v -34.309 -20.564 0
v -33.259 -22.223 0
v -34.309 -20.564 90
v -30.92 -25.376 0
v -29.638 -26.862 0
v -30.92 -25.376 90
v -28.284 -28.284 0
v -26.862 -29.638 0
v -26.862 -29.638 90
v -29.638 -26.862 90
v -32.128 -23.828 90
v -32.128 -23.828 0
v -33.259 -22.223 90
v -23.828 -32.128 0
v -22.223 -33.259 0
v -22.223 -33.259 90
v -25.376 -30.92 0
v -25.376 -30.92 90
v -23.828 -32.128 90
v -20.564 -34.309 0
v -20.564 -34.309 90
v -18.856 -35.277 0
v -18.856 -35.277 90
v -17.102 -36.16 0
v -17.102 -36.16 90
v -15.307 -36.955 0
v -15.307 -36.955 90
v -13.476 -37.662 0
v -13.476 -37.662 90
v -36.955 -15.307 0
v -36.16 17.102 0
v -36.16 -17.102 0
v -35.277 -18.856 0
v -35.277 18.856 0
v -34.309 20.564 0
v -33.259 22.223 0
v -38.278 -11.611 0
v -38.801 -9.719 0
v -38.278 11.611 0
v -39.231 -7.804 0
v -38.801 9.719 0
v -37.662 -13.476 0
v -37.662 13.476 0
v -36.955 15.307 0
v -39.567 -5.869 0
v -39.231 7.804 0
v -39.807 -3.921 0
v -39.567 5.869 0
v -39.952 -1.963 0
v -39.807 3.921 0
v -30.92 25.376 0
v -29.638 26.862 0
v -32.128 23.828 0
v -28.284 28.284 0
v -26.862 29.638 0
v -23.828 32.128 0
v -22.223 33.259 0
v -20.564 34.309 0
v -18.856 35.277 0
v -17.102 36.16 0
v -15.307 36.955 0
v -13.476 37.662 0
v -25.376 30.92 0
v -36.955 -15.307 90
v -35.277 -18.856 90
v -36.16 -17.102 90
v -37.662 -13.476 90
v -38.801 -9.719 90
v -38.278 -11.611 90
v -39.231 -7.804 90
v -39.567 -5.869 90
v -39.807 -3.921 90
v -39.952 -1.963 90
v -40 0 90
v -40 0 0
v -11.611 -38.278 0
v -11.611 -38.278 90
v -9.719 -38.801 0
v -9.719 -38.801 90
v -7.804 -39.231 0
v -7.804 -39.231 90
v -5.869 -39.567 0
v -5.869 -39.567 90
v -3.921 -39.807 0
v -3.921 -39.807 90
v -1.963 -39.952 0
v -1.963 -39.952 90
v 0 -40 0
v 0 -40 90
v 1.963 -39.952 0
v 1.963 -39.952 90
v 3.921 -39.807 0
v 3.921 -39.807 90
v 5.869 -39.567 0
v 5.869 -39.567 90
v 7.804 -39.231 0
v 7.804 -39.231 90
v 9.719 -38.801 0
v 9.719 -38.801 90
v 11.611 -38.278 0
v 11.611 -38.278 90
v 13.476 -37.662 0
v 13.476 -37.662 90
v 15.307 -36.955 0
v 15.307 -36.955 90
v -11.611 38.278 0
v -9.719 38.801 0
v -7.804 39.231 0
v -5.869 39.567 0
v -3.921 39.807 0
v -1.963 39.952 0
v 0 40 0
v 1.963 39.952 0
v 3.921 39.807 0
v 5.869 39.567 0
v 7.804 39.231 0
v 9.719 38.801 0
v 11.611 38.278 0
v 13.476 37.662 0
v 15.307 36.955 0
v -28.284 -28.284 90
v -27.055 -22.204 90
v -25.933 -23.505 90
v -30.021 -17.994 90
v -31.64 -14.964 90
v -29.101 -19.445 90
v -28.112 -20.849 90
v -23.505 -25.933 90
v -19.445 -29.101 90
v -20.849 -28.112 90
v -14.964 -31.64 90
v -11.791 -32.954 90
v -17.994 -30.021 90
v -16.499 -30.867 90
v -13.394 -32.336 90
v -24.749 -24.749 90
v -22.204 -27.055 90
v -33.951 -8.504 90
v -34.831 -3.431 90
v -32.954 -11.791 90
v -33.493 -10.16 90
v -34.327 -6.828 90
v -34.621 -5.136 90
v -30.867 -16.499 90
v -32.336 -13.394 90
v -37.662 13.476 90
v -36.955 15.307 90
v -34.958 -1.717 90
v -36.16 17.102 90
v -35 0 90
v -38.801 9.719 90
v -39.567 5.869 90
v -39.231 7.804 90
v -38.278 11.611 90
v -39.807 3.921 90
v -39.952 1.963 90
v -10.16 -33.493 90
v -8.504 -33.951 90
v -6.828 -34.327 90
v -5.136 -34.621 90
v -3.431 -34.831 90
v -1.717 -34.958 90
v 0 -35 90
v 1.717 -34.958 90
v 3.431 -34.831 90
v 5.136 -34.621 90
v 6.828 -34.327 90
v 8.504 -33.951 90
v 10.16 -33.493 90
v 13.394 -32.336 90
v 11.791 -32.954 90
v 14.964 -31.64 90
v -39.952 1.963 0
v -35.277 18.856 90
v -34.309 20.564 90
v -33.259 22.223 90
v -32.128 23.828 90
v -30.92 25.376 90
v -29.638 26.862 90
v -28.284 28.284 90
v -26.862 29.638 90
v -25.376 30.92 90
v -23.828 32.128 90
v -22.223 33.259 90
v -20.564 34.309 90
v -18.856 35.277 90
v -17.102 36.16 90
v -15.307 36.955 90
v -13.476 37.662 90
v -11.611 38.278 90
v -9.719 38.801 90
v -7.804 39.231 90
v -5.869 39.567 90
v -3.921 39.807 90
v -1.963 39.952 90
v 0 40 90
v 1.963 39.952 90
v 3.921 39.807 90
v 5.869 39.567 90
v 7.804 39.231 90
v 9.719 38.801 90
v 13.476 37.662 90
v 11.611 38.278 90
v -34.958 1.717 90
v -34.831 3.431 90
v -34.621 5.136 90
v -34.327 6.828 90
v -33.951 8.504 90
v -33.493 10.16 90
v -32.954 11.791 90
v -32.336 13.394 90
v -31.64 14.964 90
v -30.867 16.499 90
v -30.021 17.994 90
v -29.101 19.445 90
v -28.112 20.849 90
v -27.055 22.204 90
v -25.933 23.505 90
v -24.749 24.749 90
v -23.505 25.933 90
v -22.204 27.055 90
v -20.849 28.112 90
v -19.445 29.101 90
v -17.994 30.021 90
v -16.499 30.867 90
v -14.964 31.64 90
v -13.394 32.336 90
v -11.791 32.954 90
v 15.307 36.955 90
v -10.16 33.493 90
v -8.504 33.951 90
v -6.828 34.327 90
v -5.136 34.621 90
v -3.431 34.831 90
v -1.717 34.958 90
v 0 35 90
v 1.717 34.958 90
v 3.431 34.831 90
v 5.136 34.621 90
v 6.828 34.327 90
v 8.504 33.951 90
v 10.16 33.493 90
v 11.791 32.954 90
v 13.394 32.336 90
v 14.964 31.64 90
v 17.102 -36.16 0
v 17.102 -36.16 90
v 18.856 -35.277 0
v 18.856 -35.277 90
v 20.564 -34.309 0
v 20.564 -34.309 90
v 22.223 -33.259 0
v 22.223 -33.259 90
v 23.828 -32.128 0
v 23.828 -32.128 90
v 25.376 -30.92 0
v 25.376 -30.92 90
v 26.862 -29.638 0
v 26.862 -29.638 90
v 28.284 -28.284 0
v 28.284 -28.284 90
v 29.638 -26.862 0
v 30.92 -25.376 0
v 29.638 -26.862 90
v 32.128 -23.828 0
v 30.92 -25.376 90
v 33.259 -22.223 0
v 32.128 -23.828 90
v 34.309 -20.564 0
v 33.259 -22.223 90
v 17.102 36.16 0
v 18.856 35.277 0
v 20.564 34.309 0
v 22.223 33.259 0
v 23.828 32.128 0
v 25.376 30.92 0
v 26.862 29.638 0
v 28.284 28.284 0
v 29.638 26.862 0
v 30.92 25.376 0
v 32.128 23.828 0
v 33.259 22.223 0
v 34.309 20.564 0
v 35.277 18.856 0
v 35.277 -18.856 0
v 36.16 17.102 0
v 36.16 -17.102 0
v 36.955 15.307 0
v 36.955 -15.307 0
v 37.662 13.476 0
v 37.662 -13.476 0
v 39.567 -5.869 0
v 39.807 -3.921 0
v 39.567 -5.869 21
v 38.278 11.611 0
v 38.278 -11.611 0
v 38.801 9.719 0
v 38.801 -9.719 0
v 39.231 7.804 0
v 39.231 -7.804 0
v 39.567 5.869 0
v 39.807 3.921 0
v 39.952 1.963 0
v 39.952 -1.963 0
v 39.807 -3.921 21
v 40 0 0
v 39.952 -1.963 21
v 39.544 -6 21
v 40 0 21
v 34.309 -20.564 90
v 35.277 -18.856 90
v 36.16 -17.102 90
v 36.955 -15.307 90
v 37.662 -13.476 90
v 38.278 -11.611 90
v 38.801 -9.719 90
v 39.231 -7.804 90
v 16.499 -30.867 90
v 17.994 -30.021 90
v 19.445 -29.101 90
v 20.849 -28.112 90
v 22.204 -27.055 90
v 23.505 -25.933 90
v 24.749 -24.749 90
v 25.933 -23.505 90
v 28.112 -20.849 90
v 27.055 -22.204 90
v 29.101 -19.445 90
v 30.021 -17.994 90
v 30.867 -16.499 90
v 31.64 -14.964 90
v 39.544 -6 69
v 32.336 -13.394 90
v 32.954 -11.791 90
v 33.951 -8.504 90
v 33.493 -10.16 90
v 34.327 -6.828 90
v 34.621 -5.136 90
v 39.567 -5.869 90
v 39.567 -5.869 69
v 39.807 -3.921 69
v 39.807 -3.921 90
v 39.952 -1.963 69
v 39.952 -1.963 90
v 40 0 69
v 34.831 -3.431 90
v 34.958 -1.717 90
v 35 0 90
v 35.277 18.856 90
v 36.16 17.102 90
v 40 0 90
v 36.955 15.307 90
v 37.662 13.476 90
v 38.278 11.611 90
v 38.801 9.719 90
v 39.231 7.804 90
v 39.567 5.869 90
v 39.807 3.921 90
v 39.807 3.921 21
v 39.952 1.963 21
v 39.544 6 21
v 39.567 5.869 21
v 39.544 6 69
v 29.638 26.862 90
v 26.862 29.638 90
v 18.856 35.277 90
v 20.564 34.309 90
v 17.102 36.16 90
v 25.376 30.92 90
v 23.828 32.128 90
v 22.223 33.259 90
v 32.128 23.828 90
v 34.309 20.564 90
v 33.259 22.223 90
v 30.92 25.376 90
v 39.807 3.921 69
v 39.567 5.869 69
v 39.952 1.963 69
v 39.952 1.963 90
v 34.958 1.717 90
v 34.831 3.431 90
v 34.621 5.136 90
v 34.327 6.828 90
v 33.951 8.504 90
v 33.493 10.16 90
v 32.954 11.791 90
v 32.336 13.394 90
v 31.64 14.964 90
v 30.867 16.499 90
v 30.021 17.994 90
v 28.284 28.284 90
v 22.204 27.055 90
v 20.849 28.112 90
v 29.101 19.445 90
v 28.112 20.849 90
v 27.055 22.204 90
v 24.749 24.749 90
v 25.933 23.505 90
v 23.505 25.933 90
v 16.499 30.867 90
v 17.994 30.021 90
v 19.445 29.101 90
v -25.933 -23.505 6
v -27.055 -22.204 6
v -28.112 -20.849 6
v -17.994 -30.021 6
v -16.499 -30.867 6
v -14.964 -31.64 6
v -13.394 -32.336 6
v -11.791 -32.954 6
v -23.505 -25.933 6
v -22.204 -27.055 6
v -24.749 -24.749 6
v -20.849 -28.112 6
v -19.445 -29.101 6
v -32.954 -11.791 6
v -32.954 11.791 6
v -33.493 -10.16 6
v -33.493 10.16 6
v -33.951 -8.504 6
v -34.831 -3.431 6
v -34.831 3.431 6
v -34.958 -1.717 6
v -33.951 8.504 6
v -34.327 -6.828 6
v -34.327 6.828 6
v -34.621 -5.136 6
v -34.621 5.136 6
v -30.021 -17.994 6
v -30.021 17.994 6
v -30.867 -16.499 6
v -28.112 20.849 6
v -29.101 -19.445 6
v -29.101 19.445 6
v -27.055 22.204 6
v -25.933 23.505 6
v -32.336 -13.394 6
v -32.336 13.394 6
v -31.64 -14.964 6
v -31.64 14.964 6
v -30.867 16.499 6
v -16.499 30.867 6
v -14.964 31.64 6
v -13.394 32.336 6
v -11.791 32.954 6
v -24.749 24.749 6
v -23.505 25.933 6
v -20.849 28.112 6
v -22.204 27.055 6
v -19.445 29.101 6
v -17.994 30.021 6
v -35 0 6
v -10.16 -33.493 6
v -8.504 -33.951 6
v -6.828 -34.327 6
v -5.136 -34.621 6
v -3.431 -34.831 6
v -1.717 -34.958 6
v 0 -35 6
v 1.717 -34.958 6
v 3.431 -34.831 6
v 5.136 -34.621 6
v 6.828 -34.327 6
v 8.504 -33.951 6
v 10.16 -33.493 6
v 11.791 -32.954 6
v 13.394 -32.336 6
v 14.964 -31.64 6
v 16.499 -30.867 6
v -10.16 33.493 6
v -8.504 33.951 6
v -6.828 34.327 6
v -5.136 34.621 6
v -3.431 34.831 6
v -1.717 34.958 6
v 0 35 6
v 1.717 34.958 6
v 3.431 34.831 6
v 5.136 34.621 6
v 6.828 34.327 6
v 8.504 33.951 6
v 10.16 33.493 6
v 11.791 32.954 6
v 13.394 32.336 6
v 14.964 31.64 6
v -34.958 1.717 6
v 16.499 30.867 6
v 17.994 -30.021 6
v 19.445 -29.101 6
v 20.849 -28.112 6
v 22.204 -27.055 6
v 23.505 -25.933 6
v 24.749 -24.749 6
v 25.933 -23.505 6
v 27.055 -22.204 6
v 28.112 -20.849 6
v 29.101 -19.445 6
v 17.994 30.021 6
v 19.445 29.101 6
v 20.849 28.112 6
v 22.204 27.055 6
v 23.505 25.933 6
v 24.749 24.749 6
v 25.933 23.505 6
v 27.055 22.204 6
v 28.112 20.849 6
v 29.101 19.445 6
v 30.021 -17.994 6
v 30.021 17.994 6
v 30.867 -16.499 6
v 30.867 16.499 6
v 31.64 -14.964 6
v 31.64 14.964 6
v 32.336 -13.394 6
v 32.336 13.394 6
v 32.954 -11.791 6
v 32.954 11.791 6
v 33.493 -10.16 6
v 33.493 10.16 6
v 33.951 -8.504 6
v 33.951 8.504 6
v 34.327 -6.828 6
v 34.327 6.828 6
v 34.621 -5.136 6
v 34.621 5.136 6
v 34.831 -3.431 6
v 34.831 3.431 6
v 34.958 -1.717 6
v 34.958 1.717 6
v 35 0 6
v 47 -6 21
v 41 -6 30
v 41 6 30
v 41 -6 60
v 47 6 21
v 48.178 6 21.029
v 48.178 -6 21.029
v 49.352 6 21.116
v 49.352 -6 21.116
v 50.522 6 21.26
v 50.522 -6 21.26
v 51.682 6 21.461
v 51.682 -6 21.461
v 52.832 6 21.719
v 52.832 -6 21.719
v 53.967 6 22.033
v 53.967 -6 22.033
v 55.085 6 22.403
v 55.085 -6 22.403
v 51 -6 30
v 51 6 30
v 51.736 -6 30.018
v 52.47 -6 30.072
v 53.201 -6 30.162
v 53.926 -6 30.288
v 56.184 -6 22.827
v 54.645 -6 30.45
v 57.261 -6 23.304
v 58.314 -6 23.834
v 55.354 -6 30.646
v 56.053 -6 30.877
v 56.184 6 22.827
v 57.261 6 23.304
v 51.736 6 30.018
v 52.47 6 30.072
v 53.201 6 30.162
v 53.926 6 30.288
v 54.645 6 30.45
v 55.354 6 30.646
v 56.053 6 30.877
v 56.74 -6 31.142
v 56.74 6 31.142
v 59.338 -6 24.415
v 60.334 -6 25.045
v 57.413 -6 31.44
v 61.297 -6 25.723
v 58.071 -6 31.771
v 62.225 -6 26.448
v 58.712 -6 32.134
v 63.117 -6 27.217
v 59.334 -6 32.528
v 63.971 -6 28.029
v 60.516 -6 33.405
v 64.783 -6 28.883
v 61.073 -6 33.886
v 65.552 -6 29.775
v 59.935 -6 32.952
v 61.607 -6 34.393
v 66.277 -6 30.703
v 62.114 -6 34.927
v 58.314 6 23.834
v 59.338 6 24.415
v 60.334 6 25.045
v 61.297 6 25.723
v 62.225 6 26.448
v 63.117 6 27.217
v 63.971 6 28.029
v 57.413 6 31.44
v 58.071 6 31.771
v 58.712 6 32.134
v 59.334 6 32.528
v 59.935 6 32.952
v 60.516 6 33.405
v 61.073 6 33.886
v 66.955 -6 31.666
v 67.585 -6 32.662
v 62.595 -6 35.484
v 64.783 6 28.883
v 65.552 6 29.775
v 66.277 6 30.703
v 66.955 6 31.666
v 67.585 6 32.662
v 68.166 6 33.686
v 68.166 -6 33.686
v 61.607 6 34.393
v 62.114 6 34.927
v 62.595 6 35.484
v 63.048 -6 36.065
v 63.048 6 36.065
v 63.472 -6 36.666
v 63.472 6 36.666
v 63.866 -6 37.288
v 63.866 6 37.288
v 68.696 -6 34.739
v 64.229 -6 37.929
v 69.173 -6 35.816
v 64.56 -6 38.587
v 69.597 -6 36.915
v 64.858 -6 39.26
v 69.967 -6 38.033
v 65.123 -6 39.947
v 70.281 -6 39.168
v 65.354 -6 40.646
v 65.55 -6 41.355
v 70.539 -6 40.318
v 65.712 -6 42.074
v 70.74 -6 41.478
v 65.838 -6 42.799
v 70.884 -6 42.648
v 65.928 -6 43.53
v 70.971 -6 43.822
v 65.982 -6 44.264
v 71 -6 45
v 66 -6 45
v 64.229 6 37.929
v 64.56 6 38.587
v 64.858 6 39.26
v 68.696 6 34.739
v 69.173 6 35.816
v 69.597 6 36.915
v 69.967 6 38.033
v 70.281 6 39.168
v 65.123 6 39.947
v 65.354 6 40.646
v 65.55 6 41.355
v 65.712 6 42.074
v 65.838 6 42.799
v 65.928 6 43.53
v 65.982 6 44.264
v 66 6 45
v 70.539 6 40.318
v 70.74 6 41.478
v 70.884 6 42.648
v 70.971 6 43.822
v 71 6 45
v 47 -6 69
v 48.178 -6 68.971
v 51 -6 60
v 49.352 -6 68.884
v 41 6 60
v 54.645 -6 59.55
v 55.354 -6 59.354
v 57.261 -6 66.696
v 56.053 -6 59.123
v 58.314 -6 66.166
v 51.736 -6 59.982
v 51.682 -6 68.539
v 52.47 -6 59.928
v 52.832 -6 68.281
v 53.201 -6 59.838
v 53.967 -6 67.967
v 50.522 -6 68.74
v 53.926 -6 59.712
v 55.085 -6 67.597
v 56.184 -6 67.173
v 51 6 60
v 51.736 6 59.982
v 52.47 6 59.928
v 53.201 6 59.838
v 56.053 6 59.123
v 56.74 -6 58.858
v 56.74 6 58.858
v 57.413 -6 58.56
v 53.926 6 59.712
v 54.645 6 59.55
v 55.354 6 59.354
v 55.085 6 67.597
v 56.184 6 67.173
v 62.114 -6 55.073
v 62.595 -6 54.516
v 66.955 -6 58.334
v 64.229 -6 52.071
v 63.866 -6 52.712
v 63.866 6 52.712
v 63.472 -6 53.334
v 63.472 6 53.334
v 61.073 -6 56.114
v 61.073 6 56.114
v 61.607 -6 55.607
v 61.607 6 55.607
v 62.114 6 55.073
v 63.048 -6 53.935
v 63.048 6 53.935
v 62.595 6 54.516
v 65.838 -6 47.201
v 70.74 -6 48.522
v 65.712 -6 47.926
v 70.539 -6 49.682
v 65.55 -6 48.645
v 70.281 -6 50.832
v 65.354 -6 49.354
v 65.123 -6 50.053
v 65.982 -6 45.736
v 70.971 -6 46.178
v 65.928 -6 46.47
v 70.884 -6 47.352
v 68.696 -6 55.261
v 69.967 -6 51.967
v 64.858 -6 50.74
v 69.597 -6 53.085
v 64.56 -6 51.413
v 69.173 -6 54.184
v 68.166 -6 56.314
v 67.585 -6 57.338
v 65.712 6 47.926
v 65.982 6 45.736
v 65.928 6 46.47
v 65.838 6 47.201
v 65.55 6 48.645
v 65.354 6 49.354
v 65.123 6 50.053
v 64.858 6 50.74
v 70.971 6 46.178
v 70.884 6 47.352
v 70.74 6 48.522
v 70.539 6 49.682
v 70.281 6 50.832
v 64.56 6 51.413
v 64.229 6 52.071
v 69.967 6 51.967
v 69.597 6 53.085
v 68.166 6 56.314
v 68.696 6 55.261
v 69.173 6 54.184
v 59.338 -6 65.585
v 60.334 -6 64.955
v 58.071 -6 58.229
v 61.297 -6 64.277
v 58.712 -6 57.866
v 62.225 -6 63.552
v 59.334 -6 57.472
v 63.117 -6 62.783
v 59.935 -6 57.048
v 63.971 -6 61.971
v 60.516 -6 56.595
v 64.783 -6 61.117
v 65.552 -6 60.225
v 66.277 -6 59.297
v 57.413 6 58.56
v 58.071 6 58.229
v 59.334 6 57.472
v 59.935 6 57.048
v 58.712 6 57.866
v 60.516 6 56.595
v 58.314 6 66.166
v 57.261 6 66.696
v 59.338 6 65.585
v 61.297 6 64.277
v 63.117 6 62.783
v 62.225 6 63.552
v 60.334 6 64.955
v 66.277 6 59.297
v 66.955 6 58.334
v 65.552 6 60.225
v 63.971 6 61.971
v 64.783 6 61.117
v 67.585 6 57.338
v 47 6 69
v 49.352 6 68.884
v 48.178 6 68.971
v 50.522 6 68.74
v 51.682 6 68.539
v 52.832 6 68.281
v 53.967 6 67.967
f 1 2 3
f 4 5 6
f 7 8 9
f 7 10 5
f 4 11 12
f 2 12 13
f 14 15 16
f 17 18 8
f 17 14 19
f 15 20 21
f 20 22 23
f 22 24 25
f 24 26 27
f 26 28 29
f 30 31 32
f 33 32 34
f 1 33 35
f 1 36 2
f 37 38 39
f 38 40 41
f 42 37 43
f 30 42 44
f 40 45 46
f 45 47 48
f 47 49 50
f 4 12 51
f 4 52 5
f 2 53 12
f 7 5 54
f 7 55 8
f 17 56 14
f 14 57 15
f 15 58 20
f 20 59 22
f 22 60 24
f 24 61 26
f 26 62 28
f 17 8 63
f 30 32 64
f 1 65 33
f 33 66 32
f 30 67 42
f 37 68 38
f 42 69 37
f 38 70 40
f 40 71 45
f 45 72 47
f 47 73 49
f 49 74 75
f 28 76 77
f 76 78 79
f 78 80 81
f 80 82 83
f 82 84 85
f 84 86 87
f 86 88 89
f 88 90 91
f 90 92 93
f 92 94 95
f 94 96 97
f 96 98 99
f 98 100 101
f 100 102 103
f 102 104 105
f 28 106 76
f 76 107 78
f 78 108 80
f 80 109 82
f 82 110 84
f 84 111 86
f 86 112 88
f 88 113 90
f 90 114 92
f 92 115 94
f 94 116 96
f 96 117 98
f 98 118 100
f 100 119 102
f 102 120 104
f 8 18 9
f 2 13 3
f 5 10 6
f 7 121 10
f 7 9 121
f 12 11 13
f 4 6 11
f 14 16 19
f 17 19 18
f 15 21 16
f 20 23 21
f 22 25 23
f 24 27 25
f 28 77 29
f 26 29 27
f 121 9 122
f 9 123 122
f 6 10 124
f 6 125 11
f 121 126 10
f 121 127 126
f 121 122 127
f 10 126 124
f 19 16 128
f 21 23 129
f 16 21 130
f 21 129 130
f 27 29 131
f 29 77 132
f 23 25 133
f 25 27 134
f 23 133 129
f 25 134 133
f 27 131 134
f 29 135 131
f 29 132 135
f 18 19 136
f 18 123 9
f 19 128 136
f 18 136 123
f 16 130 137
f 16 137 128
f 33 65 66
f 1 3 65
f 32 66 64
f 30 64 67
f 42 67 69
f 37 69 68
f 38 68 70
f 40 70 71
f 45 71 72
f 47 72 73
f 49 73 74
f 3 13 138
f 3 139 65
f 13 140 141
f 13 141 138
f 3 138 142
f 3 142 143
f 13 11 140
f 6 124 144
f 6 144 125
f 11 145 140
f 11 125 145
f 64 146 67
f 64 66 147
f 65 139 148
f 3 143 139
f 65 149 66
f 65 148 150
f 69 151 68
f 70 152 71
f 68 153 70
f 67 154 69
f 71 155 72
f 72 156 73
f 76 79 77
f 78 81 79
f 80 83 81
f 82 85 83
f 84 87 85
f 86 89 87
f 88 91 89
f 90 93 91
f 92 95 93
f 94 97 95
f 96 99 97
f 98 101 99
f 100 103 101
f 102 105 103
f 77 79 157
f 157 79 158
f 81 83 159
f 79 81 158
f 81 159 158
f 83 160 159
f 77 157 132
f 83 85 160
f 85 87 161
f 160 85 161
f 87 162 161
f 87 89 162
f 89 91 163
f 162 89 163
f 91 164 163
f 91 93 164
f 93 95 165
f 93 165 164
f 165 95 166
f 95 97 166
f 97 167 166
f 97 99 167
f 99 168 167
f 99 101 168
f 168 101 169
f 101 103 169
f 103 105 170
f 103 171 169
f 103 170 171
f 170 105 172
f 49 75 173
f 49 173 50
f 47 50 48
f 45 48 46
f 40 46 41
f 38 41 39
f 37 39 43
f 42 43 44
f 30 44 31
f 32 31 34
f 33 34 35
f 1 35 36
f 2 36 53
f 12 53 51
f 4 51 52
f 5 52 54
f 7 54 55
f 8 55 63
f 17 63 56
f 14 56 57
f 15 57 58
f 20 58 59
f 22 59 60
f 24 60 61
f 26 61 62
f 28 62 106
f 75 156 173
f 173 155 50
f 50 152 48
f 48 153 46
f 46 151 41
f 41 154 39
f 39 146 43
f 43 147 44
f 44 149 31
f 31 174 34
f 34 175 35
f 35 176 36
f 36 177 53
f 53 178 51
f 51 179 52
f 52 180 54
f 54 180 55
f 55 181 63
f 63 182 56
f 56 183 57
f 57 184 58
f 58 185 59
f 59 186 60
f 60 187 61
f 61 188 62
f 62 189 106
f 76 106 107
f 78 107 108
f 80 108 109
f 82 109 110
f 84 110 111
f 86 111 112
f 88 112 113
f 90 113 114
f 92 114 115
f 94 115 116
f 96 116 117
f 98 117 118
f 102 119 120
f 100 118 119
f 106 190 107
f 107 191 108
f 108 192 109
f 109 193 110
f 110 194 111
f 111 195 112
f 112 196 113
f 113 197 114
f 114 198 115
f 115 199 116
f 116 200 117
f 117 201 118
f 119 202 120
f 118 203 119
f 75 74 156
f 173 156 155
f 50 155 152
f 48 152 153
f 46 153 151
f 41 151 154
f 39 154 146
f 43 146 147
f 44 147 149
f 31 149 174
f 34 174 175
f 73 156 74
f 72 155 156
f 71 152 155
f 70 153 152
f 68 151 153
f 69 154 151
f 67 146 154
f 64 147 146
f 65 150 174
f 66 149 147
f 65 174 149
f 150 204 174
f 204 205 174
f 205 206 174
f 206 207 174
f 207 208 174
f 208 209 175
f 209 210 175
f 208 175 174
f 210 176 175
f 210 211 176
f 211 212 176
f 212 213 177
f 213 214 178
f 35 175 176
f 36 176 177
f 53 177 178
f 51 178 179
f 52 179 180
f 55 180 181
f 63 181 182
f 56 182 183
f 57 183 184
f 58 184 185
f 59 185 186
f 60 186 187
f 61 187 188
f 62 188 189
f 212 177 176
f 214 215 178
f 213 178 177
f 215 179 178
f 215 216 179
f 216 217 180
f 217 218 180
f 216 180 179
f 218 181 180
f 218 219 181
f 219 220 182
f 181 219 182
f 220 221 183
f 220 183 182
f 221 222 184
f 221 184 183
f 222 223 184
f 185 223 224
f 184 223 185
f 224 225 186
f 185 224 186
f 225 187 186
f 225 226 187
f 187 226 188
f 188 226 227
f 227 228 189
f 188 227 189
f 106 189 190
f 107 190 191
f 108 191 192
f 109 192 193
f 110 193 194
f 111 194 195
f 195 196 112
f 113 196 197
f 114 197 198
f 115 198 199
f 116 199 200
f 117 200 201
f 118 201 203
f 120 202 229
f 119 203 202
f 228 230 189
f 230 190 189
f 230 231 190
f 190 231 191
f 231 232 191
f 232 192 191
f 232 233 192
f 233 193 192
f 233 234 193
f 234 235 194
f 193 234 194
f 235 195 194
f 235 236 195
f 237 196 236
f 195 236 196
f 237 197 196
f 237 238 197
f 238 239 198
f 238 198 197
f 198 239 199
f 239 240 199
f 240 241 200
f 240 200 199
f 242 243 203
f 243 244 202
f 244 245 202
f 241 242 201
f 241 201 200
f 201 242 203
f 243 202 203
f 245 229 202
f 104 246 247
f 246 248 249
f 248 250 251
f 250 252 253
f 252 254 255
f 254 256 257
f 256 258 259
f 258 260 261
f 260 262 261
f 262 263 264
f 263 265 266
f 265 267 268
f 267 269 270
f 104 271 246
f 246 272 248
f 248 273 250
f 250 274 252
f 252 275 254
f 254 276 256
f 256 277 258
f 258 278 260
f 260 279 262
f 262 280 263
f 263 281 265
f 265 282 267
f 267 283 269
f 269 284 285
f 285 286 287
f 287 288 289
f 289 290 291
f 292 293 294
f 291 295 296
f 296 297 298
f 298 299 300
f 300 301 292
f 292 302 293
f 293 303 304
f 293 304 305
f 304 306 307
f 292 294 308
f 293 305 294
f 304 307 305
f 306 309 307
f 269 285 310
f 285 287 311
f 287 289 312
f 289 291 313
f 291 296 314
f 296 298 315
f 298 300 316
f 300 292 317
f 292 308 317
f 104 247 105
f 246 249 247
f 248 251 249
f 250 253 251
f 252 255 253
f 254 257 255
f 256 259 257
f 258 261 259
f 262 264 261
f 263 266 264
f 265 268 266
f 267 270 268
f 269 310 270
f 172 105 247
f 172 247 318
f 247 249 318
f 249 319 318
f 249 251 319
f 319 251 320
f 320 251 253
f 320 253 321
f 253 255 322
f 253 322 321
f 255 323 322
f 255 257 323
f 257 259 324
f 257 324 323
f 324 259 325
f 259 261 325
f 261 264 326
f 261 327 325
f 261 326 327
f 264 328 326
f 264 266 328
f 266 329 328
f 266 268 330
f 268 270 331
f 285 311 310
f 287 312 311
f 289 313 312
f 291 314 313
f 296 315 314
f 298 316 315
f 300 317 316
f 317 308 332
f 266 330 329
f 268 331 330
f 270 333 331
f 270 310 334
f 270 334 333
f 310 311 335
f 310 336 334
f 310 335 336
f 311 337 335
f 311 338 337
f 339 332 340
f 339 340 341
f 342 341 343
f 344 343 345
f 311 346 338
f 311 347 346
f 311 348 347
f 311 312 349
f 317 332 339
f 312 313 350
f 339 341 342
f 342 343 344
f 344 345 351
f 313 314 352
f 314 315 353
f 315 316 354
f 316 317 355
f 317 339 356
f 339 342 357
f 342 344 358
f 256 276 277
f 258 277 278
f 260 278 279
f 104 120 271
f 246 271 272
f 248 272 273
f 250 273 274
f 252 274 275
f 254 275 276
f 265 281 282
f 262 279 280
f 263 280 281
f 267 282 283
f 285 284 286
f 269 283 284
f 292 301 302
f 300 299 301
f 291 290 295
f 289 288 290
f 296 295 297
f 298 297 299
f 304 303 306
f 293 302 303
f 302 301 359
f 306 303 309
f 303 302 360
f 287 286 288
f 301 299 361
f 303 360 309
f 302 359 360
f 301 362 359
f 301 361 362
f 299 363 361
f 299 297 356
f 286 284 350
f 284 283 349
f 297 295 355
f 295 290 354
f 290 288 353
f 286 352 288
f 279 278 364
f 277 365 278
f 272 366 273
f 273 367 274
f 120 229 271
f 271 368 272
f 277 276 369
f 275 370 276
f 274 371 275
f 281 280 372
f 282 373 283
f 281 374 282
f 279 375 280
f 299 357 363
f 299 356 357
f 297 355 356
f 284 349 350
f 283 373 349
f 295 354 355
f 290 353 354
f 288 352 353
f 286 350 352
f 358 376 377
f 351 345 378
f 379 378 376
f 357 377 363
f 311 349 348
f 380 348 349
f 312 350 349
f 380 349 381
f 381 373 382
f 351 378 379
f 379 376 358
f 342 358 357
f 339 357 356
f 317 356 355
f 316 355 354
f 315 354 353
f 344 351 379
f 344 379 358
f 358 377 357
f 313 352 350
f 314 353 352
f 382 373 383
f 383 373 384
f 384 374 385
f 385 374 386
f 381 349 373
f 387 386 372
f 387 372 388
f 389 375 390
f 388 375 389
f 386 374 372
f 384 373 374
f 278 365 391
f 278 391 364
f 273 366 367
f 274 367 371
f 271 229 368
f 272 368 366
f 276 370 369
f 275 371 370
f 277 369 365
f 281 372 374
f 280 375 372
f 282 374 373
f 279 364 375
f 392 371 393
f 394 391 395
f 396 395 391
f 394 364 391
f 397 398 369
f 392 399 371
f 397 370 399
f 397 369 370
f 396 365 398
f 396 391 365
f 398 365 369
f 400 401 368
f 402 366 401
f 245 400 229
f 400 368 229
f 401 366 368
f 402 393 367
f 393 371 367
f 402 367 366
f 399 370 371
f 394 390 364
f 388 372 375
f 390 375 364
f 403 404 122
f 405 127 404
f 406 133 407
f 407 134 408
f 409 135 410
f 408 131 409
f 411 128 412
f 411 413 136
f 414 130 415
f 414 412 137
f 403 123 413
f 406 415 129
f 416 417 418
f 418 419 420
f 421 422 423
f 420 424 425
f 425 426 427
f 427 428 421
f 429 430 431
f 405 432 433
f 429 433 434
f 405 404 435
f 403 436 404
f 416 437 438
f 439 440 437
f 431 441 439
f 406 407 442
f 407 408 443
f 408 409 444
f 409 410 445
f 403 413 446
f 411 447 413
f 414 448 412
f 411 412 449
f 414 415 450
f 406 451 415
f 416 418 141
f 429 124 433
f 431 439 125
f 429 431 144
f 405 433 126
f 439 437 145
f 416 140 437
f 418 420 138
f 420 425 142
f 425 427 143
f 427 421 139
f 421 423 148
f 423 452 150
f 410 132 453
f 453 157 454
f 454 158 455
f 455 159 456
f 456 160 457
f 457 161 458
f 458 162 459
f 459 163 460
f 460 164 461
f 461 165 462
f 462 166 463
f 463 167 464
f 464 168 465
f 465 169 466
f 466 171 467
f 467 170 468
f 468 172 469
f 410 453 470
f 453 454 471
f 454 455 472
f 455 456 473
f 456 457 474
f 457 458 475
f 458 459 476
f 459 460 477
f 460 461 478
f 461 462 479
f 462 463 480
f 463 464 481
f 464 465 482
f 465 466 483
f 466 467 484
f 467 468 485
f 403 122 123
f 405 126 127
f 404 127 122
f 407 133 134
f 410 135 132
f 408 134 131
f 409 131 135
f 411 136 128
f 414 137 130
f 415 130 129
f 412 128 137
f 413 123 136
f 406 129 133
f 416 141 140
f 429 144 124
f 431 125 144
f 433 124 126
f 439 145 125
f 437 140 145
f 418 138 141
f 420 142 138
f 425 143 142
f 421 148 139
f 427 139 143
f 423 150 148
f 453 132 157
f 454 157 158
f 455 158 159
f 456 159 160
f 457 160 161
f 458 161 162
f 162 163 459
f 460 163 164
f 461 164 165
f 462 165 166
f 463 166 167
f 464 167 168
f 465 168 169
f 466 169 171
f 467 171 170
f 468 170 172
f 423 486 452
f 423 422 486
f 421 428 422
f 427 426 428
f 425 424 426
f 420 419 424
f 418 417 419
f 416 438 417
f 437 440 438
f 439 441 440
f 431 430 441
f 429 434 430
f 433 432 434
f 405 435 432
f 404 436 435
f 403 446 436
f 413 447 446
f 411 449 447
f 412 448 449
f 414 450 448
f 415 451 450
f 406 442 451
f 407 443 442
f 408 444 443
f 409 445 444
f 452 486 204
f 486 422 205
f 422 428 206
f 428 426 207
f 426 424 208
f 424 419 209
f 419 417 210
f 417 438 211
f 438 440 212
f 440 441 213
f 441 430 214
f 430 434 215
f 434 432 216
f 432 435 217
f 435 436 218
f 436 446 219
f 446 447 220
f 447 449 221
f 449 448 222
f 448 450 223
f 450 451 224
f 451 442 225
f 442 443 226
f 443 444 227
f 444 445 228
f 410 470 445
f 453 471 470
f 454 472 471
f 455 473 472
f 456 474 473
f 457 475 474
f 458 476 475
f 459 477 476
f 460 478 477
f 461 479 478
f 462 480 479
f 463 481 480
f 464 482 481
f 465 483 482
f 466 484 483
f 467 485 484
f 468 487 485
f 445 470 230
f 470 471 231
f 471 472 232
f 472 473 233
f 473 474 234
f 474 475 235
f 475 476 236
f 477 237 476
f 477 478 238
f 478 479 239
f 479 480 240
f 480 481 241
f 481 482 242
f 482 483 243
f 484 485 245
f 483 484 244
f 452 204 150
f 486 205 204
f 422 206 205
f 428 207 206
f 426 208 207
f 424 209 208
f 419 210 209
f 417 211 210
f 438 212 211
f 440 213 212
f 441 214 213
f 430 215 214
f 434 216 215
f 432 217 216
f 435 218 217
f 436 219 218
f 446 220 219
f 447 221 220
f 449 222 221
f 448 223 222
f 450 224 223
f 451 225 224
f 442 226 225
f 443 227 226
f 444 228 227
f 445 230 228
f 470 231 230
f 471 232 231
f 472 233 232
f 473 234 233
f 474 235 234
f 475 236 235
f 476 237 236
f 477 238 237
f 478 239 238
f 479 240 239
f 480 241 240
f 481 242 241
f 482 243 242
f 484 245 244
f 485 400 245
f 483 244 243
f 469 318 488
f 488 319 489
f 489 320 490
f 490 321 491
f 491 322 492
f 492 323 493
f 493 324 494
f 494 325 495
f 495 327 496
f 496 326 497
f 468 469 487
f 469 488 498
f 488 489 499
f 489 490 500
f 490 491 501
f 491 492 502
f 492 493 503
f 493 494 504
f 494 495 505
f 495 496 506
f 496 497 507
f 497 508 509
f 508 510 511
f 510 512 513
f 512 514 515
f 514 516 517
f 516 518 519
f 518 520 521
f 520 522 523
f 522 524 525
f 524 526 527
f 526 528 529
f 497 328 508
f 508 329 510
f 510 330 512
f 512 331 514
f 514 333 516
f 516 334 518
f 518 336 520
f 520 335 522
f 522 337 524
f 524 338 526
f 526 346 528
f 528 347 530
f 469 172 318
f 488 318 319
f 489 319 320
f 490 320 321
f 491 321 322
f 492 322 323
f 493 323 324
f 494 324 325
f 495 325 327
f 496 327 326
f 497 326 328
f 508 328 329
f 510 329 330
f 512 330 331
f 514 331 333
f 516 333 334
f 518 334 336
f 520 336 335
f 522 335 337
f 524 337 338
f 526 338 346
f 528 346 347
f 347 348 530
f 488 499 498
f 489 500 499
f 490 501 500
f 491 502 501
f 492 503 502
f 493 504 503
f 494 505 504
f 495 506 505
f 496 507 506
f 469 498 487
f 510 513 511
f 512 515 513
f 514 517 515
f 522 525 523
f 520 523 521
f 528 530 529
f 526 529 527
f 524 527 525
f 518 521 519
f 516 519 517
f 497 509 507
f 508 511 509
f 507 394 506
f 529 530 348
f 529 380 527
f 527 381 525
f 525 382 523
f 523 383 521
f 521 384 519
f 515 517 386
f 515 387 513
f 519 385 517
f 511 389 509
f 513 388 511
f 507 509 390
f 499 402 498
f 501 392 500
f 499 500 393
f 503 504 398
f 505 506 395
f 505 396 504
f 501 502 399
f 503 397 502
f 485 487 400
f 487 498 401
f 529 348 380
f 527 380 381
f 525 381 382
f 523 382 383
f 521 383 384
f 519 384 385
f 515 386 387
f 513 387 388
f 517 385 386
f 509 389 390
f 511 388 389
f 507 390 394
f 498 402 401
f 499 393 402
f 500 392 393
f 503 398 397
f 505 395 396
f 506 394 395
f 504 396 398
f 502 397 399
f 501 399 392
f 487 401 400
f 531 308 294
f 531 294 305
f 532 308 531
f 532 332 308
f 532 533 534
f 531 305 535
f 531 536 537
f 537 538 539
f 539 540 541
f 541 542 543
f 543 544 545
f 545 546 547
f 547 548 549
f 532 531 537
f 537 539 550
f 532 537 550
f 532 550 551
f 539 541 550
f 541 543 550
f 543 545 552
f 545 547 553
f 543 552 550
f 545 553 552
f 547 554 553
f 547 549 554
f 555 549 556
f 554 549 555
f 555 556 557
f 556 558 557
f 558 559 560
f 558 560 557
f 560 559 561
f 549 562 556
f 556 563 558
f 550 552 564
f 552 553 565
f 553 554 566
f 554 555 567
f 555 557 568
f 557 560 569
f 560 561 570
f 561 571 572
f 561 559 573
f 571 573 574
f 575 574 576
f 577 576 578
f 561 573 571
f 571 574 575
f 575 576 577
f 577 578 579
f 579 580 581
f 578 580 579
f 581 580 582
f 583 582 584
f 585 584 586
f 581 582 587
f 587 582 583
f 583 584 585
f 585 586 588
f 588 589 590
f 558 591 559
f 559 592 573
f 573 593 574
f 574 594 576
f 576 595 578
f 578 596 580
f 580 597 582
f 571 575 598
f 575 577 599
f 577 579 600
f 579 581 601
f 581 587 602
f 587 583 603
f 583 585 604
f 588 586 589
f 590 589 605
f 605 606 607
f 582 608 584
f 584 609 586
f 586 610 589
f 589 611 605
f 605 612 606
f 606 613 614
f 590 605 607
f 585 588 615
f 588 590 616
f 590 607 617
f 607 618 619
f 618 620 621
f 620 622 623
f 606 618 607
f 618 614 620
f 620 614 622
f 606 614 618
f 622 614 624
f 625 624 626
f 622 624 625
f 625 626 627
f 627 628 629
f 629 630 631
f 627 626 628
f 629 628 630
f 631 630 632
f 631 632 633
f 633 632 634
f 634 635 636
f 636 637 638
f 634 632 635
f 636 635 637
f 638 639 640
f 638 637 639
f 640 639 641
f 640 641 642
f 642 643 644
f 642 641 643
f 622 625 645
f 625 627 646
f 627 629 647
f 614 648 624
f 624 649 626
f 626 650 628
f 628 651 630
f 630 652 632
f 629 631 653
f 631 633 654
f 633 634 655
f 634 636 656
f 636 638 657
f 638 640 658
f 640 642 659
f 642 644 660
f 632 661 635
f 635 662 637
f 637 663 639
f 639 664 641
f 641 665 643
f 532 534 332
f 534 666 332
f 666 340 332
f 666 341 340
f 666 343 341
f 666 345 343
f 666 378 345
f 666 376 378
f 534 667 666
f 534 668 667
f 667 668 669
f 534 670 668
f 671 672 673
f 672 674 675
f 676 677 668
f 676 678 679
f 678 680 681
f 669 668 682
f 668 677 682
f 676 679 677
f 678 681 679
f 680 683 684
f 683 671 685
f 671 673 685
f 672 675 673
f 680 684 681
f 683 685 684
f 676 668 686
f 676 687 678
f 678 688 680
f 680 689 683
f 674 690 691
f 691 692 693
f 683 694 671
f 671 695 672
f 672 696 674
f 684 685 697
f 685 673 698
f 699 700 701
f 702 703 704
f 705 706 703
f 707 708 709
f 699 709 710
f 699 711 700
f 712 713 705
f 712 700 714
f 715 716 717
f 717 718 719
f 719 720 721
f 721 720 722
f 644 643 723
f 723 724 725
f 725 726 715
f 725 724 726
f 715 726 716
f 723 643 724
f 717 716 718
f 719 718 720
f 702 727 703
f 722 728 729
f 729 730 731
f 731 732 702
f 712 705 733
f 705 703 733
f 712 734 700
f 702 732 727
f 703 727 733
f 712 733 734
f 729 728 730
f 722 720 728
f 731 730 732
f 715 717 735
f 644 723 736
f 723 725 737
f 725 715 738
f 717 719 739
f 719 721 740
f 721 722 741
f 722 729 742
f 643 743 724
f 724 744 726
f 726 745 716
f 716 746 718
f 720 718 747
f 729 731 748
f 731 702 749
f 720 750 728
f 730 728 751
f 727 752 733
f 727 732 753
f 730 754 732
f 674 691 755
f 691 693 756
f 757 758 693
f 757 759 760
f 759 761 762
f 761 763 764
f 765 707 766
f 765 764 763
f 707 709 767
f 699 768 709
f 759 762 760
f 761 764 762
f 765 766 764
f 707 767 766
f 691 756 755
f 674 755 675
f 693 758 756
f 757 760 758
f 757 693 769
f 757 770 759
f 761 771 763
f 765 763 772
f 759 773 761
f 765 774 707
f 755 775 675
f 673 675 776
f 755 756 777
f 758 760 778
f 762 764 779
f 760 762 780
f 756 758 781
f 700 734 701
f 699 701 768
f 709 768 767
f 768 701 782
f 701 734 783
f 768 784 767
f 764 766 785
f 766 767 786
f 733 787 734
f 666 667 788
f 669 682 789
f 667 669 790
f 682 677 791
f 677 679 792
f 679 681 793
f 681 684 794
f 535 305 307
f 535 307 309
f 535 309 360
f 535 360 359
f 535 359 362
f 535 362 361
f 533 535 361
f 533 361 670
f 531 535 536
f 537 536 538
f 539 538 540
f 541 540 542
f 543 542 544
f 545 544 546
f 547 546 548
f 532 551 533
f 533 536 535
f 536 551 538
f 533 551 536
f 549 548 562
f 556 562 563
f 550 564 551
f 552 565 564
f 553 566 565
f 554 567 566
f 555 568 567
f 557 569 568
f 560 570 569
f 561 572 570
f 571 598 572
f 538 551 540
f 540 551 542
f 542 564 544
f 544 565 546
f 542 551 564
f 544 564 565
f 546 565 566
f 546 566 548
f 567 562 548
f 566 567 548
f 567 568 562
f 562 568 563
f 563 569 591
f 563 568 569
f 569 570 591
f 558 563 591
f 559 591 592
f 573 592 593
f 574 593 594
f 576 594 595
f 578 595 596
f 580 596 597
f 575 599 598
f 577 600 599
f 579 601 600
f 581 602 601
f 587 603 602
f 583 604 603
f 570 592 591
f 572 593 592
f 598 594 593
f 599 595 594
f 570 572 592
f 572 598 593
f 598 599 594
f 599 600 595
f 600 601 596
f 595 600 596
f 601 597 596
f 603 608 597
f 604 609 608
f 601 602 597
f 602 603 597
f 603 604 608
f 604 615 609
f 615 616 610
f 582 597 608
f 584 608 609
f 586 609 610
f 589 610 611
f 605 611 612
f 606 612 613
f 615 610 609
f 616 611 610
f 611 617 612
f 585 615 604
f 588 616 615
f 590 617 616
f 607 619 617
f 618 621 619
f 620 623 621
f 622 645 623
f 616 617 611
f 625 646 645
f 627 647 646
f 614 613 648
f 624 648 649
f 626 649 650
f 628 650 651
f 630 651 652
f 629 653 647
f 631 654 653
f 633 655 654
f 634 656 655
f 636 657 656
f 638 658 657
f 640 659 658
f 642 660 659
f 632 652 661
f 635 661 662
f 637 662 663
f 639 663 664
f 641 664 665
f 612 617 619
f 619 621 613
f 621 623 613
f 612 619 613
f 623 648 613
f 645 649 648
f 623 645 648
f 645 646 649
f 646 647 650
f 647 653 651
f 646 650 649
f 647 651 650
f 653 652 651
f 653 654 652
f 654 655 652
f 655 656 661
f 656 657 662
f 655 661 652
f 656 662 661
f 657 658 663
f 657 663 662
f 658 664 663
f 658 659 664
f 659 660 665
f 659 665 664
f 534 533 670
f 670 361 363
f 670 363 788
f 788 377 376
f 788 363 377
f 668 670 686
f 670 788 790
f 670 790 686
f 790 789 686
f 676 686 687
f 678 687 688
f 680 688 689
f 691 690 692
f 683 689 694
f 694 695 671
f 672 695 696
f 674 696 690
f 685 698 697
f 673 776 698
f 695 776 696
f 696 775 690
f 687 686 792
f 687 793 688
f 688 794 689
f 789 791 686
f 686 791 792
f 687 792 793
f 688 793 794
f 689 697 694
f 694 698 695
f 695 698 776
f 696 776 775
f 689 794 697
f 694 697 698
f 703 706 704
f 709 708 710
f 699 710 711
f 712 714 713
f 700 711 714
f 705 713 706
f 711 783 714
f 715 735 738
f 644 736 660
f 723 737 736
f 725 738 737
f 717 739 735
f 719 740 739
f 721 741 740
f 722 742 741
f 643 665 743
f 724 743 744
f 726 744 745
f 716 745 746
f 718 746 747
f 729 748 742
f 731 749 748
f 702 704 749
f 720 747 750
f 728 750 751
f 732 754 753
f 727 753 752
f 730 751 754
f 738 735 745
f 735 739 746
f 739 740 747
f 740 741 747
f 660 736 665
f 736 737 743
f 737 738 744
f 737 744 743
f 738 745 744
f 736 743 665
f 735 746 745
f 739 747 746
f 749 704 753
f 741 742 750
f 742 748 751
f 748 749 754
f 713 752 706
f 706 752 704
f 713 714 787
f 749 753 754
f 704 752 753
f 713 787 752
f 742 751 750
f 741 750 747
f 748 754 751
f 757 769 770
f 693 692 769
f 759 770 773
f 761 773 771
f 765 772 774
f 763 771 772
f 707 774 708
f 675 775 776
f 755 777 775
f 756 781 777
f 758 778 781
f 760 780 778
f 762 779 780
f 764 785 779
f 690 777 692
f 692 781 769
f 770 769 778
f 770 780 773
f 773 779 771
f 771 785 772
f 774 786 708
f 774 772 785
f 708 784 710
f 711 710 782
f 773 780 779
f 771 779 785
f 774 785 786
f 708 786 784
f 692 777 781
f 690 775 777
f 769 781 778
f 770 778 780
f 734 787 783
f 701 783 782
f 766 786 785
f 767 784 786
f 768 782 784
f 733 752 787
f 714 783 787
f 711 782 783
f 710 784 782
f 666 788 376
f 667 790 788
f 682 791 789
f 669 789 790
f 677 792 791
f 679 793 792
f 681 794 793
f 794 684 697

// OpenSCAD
$fn = 128;

// マグ本体寸法
outer_r = 40;     // 外径 80mm
inner_r = 35;     // 内径 70mm
cup_h   = 90;
bottom_t = 6;

// 取手寸法・配置
handle_y_thickness = 12;
handle_center_z    = cup_h / 2;

attach_x      = 37;   // 本体外周へ十分に食い込ませる
outer_center_x = 47;
outer_r_handle = 24;

inner_left_x   = 41;
inner_center_x = 51;
inner_r_handle = 15;  // 内側高さ 30mm
                         // 内側幅: 41mm ～ 66mm = 25mm

module right_semicircle(cx, cz, r) {
    intersection() {
        translate([cx, cz])
            circle(r = r);

        translate([cx, cz - r])
            square([r, 2 * r]);
    }
}

module handle_profile_2d() {
    difference() {
        union() {
            // 本体側の直線部分
            translate([attach_x, handle_center_z - outer_r_handle])
                square([
                    outer_center_x - attach_x,
                    2 * outer_r_handle
                ]);

            // 外側半円部分
            right_semicircle(
                outer_center_x,
                handle_center_z,
                outer_r_handle
            );
        }

        union() {
            // 内側開口部の直線部分
            translate([inner_left_x, handle_center_z - inner_r_handle])
                square([
                    inner_center_x - inner_left_x,
                    2 * inner_r_handle
                ]);

            // 内側開口部の半円部分
            right_semicircle(
                inner_center_x,
                handle_center_z,
                inner_r_handle
            );
        }
    }
}

module handle() {
    rotate([90, 0, 0])
        linear_extrude(
            height = handle_y_thickness,
            center = true,
            convexity = 10
        )
            handle_profile_2d();
}

union() {
    // 中空マグ本体
    difference() {
        cylinder(h = cup_h, r = outer_r);

        // 底厚 6mm を残す内部空間
        translate([0, 0, bottom_t])
            cylinder(h = cup_h - bottom_t + 0.1, r = inner_r);
    }

    // +X 軸方向のみに付く取手
    handle();
}
